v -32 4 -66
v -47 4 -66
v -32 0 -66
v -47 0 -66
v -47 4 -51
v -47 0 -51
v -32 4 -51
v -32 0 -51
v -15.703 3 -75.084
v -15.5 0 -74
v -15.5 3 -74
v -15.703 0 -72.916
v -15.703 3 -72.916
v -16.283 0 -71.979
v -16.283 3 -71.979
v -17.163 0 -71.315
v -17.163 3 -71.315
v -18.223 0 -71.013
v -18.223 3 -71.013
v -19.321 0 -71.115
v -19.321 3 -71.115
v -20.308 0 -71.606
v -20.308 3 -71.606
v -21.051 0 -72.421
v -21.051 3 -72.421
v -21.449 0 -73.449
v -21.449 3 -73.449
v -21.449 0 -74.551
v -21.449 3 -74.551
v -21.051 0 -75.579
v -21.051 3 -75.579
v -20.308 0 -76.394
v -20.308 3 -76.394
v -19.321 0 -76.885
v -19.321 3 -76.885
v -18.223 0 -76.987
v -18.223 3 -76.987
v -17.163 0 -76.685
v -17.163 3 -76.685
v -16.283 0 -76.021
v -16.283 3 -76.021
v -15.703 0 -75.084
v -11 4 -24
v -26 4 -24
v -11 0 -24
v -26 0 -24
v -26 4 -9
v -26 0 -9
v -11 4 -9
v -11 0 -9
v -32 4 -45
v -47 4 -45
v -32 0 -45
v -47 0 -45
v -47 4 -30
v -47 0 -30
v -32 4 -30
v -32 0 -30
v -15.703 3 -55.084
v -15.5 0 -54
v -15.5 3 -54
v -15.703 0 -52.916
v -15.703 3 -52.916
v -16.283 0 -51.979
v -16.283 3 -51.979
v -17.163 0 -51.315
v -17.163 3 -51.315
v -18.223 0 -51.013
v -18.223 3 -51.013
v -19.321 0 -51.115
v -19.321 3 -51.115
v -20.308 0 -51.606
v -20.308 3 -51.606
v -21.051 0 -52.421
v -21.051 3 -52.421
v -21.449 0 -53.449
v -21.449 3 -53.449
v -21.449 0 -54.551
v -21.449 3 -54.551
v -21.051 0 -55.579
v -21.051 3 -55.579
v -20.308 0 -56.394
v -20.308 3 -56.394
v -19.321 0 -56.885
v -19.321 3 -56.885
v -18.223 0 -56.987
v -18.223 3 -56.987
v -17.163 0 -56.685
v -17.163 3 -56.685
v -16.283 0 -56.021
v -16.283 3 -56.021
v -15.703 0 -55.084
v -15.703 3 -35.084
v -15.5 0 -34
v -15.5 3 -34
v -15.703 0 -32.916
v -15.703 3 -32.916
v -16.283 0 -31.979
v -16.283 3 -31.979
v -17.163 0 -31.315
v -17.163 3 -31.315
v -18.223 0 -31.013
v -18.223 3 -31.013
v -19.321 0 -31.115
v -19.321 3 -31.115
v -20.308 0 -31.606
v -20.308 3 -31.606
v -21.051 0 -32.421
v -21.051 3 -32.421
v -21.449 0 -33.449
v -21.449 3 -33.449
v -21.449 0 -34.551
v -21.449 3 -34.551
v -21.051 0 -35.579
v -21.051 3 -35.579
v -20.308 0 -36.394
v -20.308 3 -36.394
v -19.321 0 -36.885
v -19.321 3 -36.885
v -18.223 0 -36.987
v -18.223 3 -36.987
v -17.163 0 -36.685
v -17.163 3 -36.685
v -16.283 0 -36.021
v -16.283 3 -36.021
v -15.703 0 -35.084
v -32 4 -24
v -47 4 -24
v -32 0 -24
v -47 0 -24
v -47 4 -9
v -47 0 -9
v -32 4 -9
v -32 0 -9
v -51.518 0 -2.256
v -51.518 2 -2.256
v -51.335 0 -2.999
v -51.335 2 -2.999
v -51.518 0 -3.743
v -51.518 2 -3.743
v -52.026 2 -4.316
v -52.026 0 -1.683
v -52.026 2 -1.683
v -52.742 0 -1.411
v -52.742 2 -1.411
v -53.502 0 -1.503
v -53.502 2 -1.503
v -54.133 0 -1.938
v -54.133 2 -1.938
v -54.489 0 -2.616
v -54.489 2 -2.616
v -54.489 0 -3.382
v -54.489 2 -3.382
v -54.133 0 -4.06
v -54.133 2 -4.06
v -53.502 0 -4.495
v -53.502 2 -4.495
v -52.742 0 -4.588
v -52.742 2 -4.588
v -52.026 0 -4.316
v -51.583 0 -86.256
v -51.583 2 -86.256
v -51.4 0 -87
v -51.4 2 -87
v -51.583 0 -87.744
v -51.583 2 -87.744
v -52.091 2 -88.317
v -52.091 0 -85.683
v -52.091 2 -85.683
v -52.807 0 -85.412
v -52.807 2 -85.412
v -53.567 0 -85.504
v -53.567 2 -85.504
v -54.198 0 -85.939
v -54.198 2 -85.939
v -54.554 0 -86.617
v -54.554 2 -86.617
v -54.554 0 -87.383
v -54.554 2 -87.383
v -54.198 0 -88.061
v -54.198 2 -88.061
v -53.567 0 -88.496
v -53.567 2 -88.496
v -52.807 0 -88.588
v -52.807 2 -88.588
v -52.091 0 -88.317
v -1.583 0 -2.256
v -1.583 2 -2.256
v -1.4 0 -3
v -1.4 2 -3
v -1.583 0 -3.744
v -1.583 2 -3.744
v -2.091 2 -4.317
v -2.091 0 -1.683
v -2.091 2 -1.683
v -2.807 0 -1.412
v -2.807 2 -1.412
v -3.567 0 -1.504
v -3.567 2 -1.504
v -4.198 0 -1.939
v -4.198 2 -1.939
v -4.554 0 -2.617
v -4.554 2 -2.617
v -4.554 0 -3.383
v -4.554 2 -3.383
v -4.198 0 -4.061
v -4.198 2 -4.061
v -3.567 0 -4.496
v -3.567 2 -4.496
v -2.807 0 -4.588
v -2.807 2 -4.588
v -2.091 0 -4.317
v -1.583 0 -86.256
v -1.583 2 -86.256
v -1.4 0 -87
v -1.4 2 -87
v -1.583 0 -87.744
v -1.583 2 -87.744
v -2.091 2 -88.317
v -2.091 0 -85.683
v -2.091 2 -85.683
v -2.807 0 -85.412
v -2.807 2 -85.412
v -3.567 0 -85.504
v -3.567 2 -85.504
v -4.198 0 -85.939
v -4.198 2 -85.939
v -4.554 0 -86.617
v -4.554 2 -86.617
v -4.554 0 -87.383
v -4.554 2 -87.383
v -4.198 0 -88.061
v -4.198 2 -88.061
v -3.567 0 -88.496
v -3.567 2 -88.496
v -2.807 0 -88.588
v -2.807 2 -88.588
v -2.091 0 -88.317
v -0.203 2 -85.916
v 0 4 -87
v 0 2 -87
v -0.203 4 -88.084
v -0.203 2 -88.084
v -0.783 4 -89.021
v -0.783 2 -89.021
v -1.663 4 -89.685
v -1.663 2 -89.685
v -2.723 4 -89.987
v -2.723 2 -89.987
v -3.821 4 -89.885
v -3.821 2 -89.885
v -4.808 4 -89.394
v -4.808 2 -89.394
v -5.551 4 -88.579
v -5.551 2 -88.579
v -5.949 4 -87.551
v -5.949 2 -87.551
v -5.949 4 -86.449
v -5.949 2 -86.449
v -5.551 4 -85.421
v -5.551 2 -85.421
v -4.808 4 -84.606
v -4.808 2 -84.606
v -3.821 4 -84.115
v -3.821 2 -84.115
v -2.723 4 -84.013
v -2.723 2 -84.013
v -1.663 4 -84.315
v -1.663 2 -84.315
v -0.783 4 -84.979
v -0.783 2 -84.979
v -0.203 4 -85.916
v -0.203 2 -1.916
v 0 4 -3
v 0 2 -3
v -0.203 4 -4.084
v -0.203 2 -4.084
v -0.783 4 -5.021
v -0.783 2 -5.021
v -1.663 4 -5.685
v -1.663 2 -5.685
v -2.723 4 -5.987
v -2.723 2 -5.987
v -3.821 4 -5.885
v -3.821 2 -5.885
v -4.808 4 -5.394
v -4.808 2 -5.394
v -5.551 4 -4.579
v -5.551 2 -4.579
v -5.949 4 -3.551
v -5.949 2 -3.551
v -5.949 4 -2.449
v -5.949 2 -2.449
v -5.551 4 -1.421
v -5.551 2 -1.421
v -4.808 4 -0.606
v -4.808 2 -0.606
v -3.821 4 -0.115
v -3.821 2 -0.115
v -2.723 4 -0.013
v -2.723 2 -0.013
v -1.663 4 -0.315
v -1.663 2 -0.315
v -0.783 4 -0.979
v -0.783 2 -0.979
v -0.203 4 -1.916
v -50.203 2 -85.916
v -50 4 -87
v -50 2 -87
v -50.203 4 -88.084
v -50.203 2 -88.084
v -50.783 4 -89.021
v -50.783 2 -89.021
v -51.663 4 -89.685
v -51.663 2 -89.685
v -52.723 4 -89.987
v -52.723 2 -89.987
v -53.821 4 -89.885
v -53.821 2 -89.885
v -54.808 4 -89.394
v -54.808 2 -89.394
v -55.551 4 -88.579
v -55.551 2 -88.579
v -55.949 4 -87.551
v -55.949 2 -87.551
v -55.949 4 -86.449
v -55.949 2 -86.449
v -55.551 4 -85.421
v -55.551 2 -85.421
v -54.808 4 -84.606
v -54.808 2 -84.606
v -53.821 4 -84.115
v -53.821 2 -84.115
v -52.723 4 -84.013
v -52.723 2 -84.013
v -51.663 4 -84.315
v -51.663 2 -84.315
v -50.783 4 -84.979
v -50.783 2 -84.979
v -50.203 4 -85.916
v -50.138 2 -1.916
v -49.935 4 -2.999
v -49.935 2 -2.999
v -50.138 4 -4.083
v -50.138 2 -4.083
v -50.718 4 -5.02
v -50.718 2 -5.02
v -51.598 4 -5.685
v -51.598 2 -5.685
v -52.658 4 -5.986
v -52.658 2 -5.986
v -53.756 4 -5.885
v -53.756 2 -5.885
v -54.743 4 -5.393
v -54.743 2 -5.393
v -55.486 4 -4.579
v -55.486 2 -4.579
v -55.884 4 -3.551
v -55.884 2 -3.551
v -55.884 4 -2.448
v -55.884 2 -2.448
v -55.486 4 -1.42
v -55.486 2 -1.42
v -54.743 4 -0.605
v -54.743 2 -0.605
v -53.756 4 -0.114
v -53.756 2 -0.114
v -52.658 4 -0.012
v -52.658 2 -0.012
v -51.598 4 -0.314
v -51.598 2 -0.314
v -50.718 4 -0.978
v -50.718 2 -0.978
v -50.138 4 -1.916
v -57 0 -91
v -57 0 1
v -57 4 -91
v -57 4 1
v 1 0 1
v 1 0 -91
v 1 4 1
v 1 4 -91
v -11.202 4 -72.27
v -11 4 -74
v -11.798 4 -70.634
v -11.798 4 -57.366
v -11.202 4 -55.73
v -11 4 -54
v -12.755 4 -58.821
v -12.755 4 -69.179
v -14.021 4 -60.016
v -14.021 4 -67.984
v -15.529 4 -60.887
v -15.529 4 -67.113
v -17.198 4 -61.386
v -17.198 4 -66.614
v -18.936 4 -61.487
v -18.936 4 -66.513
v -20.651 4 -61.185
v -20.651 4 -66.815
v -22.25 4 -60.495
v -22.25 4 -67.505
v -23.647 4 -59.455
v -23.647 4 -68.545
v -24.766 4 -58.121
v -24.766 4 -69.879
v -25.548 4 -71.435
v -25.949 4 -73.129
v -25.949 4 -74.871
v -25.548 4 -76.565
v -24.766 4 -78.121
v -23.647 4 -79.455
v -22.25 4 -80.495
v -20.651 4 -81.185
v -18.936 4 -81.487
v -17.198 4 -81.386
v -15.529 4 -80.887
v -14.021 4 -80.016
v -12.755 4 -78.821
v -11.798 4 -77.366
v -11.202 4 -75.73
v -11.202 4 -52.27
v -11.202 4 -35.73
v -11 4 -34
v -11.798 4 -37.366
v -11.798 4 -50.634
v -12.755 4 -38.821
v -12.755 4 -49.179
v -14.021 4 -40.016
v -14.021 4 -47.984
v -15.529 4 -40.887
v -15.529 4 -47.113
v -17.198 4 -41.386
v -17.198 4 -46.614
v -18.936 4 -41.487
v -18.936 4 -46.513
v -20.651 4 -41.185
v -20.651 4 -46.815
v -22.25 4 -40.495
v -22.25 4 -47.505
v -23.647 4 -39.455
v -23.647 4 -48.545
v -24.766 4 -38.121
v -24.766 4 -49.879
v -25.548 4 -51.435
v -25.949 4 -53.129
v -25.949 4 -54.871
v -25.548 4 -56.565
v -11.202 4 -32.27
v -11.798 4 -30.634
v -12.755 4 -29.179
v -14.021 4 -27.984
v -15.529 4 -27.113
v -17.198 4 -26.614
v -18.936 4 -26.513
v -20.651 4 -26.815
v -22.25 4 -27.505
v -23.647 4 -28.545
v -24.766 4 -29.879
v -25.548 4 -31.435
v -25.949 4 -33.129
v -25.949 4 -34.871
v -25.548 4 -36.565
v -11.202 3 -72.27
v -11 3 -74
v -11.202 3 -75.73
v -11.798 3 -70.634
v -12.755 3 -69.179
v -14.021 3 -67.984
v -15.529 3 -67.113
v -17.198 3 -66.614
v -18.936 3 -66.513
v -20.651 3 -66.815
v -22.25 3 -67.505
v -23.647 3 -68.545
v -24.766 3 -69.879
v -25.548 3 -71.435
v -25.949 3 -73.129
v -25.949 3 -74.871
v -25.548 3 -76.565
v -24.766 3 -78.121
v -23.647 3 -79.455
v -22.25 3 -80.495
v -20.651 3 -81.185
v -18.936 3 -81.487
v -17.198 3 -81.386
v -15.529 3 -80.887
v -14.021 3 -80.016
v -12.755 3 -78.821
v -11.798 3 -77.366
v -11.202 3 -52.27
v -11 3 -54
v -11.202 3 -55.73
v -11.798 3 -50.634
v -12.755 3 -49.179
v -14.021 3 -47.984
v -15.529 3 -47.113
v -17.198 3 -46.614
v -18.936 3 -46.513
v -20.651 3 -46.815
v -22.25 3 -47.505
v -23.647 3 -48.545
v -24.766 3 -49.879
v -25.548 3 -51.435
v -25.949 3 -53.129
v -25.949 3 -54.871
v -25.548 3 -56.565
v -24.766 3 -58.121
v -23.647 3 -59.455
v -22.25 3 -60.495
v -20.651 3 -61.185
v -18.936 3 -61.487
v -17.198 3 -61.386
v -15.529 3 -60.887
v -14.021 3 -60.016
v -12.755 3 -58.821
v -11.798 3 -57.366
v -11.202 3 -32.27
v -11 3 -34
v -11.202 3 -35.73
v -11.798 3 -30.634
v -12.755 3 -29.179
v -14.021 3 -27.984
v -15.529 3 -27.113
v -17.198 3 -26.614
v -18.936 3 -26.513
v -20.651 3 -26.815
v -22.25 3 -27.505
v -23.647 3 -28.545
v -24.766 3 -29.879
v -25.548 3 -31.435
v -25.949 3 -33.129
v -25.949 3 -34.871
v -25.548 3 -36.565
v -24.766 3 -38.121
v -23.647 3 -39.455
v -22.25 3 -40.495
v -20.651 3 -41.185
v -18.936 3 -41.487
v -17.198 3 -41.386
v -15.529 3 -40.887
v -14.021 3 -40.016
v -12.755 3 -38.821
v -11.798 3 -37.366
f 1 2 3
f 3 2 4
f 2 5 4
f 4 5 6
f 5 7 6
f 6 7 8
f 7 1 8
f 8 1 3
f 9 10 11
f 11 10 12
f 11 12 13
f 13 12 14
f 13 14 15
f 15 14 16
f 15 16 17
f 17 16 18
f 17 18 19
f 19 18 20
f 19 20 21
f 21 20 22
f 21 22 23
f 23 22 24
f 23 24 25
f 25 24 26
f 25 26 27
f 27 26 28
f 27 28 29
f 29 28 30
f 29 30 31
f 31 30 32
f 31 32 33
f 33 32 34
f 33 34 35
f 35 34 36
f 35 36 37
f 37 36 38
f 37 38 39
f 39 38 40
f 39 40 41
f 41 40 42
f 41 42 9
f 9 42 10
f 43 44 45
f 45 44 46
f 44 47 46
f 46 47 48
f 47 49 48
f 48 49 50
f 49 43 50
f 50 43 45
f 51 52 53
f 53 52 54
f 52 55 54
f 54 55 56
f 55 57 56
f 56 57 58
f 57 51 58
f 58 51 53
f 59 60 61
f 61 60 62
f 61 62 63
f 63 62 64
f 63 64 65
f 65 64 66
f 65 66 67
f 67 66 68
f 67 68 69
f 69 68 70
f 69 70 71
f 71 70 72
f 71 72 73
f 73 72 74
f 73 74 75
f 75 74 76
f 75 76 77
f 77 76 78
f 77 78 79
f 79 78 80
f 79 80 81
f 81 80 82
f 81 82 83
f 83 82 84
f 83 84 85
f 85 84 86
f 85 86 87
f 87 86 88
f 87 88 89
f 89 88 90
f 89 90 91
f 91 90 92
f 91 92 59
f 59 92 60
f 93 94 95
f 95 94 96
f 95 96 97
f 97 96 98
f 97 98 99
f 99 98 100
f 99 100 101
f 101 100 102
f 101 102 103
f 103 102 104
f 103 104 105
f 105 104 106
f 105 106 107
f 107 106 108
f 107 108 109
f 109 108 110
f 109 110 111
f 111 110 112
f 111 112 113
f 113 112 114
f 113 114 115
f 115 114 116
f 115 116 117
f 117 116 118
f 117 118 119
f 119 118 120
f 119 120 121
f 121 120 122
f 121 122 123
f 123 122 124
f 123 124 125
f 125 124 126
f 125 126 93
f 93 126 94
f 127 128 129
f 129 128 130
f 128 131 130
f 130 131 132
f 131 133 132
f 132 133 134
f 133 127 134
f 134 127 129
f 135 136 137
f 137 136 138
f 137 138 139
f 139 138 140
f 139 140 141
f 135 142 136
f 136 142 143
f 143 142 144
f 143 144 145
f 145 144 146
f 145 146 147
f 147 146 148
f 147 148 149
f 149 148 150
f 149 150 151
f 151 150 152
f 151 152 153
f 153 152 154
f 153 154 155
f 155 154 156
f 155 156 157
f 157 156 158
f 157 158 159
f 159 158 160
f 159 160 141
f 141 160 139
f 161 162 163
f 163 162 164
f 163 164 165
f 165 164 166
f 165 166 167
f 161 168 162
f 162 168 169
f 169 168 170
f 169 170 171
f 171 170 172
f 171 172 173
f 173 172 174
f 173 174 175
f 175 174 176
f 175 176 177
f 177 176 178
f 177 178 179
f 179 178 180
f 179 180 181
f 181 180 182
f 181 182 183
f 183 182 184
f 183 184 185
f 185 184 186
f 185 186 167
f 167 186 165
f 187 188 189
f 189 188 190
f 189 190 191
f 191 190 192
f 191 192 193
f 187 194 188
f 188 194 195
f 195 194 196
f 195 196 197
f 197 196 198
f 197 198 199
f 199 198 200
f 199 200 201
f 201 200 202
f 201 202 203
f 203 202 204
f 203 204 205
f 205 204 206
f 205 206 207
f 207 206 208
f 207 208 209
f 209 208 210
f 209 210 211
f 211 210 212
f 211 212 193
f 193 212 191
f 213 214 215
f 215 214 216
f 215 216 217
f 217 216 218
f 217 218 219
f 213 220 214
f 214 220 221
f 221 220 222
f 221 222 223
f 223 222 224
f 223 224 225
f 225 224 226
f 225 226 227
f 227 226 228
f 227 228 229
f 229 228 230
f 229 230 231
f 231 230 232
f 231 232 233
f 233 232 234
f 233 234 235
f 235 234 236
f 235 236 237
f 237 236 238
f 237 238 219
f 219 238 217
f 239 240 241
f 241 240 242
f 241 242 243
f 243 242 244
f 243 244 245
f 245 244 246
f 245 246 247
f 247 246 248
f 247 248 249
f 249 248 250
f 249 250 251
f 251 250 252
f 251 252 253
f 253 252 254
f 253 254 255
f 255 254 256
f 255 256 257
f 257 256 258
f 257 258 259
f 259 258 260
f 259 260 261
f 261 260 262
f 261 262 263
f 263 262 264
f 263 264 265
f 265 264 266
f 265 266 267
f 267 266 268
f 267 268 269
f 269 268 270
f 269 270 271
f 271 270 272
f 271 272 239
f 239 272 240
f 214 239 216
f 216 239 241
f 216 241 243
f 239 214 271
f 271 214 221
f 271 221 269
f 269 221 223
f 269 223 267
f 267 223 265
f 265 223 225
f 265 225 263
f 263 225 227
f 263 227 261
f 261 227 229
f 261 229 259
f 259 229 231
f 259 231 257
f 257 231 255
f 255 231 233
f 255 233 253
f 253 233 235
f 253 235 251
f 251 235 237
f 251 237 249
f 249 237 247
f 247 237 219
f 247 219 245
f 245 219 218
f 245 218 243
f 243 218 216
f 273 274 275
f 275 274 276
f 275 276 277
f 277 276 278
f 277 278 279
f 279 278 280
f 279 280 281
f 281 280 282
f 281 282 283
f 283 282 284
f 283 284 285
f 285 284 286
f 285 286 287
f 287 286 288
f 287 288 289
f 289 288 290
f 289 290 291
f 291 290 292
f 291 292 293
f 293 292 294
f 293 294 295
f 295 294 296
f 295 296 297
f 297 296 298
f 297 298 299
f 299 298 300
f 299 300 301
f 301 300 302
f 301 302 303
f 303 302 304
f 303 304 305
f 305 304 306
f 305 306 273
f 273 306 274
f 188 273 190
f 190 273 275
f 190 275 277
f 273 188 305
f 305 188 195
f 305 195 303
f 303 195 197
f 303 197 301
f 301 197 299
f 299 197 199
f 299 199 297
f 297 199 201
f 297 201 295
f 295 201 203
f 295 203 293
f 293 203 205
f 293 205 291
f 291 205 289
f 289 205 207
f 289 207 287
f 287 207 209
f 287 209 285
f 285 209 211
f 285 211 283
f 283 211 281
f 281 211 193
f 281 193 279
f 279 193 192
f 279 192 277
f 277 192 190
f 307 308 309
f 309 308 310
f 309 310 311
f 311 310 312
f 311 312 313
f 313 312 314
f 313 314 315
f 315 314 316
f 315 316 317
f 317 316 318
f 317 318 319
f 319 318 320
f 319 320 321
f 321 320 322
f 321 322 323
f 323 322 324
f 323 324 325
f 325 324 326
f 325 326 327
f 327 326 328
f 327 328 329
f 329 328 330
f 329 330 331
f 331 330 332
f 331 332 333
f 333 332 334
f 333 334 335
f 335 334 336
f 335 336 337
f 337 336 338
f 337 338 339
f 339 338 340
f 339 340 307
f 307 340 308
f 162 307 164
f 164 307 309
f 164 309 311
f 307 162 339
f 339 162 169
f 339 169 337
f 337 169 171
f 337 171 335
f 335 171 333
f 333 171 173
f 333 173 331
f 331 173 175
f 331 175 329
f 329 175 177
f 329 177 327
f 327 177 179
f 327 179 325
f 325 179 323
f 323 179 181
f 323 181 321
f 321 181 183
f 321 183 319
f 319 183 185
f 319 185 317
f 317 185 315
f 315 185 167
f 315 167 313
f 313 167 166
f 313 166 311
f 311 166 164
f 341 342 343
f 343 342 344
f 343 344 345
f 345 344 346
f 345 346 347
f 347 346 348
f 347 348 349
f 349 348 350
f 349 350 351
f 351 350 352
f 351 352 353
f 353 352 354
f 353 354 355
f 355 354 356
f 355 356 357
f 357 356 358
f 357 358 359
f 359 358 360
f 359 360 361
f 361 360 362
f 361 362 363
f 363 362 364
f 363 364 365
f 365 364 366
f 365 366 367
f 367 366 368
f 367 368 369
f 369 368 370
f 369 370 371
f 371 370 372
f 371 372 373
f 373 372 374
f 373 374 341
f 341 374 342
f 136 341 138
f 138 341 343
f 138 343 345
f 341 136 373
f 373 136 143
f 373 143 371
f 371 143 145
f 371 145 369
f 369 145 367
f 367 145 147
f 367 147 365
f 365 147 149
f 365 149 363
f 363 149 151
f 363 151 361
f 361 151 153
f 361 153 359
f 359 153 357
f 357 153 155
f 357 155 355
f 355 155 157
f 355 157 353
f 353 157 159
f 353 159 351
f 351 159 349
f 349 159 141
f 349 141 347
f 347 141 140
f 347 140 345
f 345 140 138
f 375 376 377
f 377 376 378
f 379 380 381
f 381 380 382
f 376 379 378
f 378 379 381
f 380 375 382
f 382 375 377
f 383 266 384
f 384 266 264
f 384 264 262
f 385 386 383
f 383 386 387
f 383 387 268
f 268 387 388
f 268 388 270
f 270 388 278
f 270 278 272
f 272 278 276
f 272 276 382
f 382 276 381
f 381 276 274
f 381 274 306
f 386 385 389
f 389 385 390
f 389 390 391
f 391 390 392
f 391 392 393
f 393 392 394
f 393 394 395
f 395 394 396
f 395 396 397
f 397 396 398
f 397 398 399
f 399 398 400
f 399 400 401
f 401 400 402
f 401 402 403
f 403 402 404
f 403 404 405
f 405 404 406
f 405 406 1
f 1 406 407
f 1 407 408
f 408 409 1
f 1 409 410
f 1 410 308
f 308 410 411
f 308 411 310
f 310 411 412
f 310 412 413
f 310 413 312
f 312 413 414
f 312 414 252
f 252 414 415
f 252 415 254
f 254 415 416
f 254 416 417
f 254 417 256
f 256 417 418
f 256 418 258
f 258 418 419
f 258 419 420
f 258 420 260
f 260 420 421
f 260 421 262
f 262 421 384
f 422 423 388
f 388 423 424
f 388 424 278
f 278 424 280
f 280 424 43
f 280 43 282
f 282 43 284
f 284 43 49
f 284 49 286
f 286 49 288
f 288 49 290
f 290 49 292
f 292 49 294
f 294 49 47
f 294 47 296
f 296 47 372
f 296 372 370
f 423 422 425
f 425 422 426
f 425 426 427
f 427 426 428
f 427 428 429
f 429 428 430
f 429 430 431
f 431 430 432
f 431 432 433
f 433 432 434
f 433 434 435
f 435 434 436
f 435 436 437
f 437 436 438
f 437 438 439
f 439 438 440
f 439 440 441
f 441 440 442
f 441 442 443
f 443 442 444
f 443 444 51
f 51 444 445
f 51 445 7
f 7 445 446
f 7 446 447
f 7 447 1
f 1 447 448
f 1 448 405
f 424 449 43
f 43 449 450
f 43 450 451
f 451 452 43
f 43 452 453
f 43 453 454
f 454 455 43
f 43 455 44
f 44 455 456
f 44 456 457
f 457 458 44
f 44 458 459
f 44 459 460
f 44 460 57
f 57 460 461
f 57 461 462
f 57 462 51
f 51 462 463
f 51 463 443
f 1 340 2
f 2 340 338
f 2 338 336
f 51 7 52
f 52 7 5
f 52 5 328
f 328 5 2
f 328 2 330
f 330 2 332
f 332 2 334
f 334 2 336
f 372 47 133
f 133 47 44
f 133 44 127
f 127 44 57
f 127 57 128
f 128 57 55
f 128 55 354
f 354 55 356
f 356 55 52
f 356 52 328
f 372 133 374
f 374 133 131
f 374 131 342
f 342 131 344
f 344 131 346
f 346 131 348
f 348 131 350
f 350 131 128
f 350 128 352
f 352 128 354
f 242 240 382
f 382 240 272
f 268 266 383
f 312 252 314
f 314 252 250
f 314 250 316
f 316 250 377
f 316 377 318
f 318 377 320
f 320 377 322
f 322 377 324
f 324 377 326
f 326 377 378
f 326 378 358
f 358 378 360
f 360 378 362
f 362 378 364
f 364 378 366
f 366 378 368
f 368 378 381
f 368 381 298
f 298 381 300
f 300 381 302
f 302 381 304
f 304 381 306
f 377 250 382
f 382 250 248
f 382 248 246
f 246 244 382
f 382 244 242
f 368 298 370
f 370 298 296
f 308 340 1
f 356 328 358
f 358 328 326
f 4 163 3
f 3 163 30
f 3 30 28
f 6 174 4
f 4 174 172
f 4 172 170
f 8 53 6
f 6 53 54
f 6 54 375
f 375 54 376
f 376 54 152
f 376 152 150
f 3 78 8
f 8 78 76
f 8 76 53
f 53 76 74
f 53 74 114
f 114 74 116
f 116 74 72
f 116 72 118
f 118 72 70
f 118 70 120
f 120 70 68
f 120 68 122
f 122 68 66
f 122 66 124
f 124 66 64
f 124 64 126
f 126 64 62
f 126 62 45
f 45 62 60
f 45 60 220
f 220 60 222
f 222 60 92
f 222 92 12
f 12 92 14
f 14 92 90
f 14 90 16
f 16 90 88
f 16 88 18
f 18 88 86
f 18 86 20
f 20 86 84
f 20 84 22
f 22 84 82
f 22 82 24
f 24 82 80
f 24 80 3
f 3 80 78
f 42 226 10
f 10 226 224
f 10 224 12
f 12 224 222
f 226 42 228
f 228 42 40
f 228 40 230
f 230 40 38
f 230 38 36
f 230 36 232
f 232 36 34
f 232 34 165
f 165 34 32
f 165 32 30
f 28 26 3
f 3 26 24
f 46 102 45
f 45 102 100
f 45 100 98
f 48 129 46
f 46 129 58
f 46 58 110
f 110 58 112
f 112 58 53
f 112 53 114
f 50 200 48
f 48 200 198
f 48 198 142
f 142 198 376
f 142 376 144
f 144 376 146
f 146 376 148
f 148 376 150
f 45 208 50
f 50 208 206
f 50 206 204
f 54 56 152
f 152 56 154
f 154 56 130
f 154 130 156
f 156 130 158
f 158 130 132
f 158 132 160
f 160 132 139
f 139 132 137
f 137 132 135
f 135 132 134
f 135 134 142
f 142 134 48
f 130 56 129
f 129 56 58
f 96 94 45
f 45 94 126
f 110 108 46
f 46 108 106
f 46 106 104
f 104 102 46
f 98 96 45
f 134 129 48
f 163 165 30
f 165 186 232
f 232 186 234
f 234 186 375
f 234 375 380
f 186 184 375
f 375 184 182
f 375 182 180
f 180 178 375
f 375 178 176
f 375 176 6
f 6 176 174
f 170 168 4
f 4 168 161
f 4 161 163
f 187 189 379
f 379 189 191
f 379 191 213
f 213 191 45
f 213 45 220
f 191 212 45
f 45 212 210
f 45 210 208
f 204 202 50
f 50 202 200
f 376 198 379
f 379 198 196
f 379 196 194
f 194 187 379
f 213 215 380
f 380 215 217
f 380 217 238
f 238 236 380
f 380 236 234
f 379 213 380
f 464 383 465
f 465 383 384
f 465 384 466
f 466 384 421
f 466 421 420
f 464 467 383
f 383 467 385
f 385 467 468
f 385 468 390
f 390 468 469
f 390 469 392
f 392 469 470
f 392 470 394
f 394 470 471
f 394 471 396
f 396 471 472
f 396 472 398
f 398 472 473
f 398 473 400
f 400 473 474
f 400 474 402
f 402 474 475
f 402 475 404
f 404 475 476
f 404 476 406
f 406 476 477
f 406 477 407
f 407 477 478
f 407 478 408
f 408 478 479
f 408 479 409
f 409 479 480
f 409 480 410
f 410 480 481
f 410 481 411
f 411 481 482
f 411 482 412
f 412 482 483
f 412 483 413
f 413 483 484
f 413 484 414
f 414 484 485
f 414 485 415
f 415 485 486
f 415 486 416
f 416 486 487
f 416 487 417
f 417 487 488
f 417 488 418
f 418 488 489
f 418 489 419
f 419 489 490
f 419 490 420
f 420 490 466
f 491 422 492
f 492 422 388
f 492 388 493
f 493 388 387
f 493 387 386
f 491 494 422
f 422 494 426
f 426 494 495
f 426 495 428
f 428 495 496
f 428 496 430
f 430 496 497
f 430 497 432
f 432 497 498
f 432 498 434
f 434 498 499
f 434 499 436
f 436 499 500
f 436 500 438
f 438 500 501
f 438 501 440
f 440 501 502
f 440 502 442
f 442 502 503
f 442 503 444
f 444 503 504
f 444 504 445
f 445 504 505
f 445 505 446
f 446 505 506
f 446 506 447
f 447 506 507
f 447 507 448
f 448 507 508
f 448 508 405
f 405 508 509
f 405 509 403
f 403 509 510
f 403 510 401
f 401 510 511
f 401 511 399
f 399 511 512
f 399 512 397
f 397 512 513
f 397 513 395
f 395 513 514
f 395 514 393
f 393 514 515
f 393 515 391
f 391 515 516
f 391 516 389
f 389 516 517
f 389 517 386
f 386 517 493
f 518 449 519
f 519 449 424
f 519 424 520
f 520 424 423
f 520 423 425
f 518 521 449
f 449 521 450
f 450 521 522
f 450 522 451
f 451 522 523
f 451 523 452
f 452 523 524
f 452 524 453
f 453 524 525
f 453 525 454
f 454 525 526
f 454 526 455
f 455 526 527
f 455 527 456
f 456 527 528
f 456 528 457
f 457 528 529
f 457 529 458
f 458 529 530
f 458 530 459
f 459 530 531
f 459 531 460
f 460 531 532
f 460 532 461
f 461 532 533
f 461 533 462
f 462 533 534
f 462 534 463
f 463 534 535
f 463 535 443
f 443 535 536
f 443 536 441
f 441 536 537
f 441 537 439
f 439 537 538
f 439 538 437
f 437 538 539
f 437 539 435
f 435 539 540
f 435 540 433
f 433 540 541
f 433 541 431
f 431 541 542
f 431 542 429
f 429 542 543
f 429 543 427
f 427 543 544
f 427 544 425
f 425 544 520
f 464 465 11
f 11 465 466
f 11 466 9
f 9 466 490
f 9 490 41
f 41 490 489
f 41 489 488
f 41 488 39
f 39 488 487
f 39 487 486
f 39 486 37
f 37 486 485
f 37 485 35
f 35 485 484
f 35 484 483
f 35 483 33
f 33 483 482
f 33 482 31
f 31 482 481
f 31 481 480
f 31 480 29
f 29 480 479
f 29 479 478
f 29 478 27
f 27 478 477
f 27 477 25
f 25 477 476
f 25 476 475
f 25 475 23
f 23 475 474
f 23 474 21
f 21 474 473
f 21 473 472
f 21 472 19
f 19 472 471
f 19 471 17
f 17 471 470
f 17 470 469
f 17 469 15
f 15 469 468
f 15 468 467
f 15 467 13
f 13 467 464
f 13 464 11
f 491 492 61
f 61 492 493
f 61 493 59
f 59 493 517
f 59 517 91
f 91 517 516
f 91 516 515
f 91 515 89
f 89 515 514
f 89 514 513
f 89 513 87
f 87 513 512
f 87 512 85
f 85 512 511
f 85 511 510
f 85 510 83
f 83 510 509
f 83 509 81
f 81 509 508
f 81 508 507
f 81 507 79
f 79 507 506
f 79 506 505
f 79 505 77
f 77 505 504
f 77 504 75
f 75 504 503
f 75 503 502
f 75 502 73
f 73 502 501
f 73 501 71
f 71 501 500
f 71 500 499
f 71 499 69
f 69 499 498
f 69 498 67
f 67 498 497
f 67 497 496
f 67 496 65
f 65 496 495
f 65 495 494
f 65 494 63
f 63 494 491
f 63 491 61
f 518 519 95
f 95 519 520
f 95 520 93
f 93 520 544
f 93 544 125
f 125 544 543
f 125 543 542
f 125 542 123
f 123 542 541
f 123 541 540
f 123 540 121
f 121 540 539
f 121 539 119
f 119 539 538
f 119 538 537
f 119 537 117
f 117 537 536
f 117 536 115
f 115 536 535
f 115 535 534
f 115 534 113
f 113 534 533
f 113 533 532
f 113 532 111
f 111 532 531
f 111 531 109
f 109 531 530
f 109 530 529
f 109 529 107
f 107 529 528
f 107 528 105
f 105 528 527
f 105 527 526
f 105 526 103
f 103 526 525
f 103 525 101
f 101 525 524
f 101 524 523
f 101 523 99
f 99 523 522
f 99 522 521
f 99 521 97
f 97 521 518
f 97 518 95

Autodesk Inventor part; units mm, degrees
ref_plane "YZ Plane" through (0, 0, 0) normal (1, 0, 0) x (0, 1, 0)
ref_plane "XZ Plane" through (0, 0, 0) normal (0, 1, 0) x (-1, 0, 0)
ref_plane "XY Plane" through (0, 0, 0) normal (0, 0, 1) x (1, 0, 0)
sketch "Sketch1" plane through (0, 0, 0) normal (0, 1, 0) x (-1, 0, 0)
  line L0 (0, 0) -> (0, -90)
  line L1 (0, -90) -> (56, -90)
  line L2 (56, -90) -> (56, 0)
  line L3 (56, 0) -> (0, 0)
  dimension "d0" = 90
  dimension "d1" = 56
extrude "Extrusion1" add sketch "Sketch1" along normal blind 4
sketch "Sketch2" plane through (0, 4, 0) normal (0, 1, 0) x (1, 0, 0)
  circle A0 centre (-3, 3) radius 3
  circle A1 centre (-52.9351, 2.9993) radius 3
  circle A2 centre (-53, 87) radius 3
  circle A3 centre (-3, 87) radius 3
  point P0 (0, 0)
  point P1 (-56, 0)
  point P2 (0, 90)
  point P3 (-56, 90)
  dimension "d6" = 6
  dimension "d17" = 6
  dimension "d20" = 6
  dimension "d23" = 6
sketch "Sketch5" plane through (0, 0, -90) normal (0, 0, -1) x (-1, 0, 0)
  line L0 (0, 0) -> (56, 0) projected
  line L1 (0, 0) -> (56, 0)
  line L2 (56, 0) -> (56, 4) projected
  line L3 (56, 0) -> (56, 4)
  line L4 (56, 4) -> (0, 4)
  line L5 (0, 0) -> (0, 4) projected
  line L6 (0, 0) -> (0, 4)
extrude "Extrusion2" add sketch "Sketch5" along normal blind 1
sketch "Sketch7" plane through (-56, 0, 0) normal (0, 0, 1) x (1, 0, 0)
  line L0 (0, 0) -> (0, 4) projected
  line L1 (0, 4) -> (0, 0)
  line L2 (0, 0) -> (56, 0)
  line L3 (56, 0) -> (56, 4)
  line L4 (56, 4) -> (0, 4)
extrude "Extrusion3" add sketch "Sketch7" along normal blind 1
sketch "Sketch8" plane through (0, 0, -91) normal (1, 0, 0) x (0, 0, -1)
  line L0 (-92, 0) -> (-92, 4) projected
  line L1 (0, 0) -> (-92, 0) projected
  line L2 (-92, 4) -> (-92, 0)
  line L3 (-92, 0) -> (0, 0)
  line L4 (0, 4) -> (0, 0) projected
  line L5 (0, 0) -> (0, 4)
  line L6 (0, 4) -> (-92, 4) projected
  line L7 (0, 4) -> (-92, 4)
  point P0 (-91, 0)
extrude "Extrusion4" add sketch "Sketch8" along normal blind 1
sketch "Sketch9" plane through (-56, 0, -91) normal (-1, 0, 0) x (0, 0, 1)
  line L0 (92, 0) -> (0, 0) projected
  line L1 (92, 4) -> (92, 0) projected
  line L2 (0, 0) -> (92, 0)
  line L3 (92, 0) -> (92, 4)
  line L4 (92, 4) -> (0, 4)
  line L5 (0, 4) -> (0, 0)
  point P0 (91, 0)
extrude "Extrusion5" add sketch "Sketch9" along normal blind 1
sketch "Sketch10" plane through (1, 0, -91) normal (1, 0, 0) x (0, 0, -1)
  point P0 (-91, 0)
extrude "Extrusion6" cut sketch "Sketch2" against normal blind 2
sketch "Sketch11" plane through (-3, 2, -87) normal (0, 1, 0) x (1, 0, 0)
  circle A0 centre (0, -84) radius 3 projected
  circle A1 centre (0, -84) radius 1.6
  circle A2 centre (-49.9351, -84.0007) radius 3 projected
  circle A3 centre (-49.9351, -84.0007) radius 1.6
  circle A4 centre (-50, 0) radius 3 projected
  circle A5 centre (-50, 0) radius 1.6
  circle A6 centre (0, 0) radius 3 projected
  circle A7 centre (0, 0) radius 1.6
  point P0 (3, -87)
  dimension "d26" = 3.2
  dimension "d27" = 3.2
  dimension "d28" = 3.2
  dimension "d29" = 3.2
extrude "Extrusion7" cut sketch "Sketch11" against normal blind 2 contours A1 | A3 | A5 | A7
sketch "Sketch12" plane through (0, 4, 0) normal (0, 1, 0) x (1, 0, 0)
  line L0 (-47, 9) -> (-47, 24)
  line L1 (-47, 24) -> (-32, 24)
  line L2 (-32, 24) -> (-32, 9)
  line L3 (-32, 9) -> (-47, 9)
  line L4 (-47, 30) -> (-32, 30)
  line L5 (-32, 30) -> (-32, 45)
  line L6 (-32, 45) -> (-47, 45)
  line L7 (-47, 45) -> (-47, 30)
  line L8 (-47, 51) -> (-47, 66)
  line L9 (-47, 66) -> (-32, 66)
  line L10 (-32, 66) -> (-32, 51)
  line L11 (-32, 51) -> (-47, 51)
  line L12 (-57, 91) -> (1, 91) projected
  line L13 (-26, 9) -> (-26, 24)
  line L14 (-26, 24) -> (-11, 24)
  line L15 (-11, 24) -> (-11, 9)
  line L16 (-11, 9) -> (-26, 9)
  circle A0 centre (-18.5, 34) radius 3
  circle A1 centre (-18.5, 54) radius 3
  circle A2 centre (-18.5, 74) radius 3
  line L17 (-18.5, 54) -> (-18.5, 74)
  point P0 (0, 0)
  point P1 (-57, -1)
  dimension "d34" = 15
  dimension "d35" = 15
  dimension "d37" = 15
  dimension "d39" = 15
  dimension "d44" = 15
  dimension "d46" = 6
  dimension "d48" = 6
  dimension "d50" = 6
  dimension "d57" = 20
extrude "Extrusion8" cut sketch "Sketch12" against normal blind 4
sketch "Sketch13" plane through (0, 4, 0) normal (0, 1, 0) x (1, 0, 0)
  circle A0 centre (-18.5, 34) radius 3 projected
  circle A1 centre (-18.5, 34) radius 7.5
  circle A2 centre (-18.5, 54) radius 3 projected
  circle A3 centre (-18.5, 54) radius 7.5
  circle A4 centre (-18.5, 74) radius 3 projected
  circle A5 centre (-18.5, 74) radius 7.5
  point P0 (0, 0)
  dimension "d58" = 15
  dimension "d59" = 15
  dimension "d60" = 15
extrude "Extrusion9" cut sketch "Sketch13" against normal blind 1
properties part number "streamdeck lid"
